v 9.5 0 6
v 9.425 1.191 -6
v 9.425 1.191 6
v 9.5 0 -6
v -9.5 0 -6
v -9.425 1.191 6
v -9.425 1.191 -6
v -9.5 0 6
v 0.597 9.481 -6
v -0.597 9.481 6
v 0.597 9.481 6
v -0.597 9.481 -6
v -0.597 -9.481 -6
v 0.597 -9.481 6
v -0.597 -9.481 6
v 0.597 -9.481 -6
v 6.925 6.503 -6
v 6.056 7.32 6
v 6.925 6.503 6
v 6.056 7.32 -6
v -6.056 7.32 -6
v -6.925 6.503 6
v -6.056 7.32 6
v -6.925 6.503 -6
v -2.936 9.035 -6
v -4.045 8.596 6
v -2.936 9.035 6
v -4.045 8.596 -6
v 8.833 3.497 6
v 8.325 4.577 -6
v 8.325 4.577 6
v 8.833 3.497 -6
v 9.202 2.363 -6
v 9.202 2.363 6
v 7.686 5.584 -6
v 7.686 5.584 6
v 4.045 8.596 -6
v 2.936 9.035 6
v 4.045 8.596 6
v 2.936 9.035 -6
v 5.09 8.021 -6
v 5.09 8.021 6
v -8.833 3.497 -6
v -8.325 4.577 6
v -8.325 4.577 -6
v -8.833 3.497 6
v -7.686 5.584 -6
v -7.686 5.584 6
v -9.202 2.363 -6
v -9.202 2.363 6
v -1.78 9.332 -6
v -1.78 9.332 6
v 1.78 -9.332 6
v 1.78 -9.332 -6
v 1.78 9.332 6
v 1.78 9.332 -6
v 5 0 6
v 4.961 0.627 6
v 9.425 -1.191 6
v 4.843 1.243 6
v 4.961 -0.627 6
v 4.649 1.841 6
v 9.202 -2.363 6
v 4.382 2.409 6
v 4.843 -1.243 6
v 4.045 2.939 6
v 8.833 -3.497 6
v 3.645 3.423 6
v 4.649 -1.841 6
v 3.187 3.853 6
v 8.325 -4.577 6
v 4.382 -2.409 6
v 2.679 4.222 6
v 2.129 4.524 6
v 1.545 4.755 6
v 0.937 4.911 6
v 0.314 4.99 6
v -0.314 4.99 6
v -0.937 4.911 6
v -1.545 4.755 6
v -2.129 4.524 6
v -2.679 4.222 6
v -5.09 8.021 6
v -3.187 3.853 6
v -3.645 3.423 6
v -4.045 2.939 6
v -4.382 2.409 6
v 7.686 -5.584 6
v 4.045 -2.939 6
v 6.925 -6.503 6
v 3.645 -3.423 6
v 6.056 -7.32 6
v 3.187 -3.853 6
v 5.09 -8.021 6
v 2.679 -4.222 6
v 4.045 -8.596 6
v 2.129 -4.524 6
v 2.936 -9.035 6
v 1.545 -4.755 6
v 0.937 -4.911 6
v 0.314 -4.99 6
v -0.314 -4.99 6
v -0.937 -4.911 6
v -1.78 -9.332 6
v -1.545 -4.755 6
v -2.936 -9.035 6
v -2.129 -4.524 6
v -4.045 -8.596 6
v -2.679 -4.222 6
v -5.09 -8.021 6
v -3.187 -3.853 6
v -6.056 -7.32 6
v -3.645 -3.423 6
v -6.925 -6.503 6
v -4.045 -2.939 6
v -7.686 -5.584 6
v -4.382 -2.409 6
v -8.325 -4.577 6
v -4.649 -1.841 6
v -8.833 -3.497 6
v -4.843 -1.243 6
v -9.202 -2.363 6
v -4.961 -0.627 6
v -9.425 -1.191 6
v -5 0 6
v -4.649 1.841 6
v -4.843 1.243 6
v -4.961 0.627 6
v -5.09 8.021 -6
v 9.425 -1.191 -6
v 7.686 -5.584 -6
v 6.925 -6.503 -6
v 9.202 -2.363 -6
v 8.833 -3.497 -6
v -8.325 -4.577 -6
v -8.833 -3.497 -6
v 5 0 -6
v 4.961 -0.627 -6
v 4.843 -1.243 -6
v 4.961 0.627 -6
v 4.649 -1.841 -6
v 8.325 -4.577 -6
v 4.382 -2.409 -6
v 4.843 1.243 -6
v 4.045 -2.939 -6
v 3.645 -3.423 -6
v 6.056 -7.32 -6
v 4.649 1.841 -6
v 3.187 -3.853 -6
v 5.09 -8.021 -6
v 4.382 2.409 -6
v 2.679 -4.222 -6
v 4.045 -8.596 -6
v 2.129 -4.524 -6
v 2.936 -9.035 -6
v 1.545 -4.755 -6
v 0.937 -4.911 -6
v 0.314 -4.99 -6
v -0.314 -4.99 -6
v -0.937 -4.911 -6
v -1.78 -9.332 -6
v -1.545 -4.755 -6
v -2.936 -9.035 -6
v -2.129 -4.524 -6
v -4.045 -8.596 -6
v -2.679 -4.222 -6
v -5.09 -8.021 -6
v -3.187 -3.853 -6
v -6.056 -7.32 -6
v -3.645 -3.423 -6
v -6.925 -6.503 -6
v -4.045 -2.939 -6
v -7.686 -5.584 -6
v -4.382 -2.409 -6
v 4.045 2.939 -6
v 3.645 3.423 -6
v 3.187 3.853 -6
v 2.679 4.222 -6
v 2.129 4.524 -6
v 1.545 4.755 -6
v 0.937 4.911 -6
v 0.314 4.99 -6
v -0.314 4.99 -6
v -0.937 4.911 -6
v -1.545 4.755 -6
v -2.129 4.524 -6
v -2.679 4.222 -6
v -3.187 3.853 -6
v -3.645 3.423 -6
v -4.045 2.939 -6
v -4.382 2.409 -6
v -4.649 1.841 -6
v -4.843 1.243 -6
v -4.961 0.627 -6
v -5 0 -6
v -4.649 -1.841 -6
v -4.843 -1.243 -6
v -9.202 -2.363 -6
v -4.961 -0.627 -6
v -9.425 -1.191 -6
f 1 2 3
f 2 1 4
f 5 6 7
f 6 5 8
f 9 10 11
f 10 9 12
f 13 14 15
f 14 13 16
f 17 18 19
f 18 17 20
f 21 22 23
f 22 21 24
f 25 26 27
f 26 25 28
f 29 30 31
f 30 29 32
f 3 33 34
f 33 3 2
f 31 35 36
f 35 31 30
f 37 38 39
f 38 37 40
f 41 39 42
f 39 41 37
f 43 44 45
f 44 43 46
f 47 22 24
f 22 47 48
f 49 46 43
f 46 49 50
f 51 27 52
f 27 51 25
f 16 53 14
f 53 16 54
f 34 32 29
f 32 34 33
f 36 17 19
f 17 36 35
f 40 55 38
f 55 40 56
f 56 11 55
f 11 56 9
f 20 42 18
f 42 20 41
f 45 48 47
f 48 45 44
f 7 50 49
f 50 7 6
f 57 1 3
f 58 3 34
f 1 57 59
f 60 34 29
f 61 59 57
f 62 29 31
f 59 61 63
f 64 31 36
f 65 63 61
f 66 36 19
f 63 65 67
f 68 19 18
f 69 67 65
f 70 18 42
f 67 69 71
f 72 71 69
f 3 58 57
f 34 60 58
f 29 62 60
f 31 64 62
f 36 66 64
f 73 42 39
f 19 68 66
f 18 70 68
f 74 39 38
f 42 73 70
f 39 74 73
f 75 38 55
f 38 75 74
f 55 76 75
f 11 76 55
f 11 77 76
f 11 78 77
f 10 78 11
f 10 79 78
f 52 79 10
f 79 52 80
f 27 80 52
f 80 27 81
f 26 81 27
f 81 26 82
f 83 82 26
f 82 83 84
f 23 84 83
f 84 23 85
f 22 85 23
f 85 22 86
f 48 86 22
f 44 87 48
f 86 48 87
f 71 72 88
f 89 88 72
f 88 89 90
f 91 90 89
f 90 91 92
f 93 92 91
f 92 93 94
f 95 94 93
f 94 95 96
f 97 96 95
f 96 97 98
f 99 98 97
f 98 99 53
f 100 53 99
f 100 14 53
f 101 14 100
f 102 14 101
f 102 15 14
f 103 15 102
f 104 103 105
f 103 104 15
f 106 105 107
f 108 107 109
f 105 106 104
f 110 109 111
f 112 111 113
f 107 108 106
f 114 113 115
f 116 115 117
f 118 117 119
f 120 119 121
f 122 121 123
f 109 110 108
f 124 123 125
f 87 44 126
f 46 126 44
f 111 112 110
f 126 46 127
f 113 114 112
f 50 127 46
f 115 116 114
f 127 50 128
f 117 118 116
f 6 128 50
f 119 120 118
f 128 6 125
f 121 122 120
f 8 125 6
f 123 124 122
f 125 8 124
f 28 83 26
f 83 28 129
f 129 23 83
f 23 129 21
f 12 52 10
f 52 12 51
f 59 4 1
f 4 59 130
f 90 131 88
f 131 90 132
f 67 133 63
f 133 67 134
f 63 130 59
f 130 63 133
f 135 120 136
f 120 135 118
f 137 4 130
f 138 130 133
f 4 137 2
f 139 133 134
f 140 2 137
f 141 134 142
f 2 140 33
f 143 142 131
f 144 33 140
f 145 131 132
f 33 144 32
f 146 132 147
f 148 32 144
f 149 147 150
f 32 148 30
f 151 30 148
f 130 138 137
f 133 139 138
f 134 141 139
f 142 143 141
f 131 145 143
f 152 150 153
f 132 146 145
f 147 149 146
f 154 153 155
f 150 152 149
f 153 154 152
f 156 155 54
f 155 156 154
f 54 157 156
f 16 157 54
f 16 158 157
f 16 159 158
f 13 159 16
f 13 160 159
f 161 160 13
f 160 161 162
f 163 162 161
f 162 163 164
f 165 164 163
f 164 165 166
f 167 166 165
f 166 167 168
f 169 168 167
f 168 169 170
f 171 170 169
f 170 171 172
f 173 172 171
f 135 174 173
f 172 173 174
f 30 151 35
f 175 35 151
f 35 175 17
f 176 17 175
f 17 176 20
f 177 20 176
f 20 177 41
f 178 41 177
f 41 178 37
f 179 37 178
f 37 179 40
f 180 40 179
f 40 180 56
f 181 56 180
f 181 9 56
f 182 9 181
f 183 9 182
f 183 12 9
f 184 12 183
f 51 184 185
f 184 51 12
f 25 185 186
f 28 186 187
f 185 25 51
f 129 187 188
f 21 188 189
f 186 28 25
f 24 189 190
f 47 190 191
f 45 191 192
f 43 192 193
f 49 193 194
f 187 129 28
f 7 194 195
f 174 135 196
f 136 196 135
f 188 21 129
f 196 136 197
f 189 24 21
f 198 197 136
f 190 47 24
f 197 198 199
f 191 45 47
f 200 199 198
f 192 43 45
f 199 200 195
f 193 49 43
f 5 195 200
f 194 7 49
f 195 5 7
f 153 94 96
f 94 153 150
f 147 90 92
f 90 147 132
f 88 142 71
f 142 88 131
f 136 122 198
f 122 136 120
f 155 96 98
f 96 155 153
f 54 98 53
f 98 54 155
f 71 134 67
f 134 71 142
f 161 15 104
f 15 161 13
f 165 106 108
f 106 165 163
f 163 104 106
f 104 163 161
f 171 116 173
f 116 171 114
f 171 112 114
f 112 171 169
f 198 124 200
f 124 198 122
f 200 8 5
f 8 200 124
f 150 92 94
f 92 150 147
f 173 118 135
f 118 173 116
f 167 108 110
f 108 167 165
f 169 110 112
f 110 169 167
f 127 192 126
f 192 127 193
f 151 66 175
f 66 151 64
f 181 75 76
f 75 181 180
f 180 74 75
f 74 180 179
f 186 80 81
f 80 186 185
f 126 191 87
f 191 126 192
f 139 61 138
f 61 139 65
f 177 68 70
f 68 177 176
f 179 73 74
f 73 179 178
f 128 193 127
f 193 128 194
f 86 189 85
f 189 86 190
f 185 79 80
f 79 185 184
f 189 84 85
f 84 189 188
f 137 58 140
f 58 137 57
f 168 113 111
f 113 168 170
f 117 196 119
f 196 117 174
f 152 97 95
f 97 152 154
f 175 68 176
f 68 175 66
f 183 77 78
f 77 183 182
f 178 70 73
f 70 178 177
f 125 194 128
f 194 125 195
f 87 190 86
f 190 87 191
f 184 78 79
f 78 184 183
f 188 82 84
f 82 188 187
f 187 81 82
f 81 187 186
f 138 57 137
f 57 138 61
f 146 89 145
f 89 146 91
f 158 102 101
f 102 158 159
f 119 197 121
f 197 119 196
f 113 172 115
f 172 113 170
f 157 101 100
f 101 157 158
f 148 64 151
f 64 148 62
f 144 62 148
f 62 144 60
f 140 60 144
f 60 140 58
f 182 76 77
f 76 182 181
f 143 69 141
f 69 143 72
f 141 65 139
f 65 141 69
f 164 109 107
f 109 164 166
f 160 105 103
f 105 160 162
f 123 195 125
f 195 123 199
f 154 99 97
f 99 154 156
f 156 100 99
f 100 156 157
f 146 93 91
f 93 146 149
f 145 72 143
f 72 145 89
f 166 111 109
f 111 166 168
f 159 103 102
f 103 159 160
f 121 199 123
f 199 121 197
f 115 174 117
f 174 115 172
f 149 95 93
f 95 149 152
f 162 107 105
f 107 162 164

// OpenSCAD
$fn = 50;


difference() {
	union() {
		translate(v = [0, 0, -6.0000000000]) {
			cylinder(h = 12, r = 9.5000000000);
		}
	}
	union() {
		translate(v = [0, 0, -100.0000000000]) {
			cylinder(h = 200, r = 5.0000000000);
		}
	}
}
